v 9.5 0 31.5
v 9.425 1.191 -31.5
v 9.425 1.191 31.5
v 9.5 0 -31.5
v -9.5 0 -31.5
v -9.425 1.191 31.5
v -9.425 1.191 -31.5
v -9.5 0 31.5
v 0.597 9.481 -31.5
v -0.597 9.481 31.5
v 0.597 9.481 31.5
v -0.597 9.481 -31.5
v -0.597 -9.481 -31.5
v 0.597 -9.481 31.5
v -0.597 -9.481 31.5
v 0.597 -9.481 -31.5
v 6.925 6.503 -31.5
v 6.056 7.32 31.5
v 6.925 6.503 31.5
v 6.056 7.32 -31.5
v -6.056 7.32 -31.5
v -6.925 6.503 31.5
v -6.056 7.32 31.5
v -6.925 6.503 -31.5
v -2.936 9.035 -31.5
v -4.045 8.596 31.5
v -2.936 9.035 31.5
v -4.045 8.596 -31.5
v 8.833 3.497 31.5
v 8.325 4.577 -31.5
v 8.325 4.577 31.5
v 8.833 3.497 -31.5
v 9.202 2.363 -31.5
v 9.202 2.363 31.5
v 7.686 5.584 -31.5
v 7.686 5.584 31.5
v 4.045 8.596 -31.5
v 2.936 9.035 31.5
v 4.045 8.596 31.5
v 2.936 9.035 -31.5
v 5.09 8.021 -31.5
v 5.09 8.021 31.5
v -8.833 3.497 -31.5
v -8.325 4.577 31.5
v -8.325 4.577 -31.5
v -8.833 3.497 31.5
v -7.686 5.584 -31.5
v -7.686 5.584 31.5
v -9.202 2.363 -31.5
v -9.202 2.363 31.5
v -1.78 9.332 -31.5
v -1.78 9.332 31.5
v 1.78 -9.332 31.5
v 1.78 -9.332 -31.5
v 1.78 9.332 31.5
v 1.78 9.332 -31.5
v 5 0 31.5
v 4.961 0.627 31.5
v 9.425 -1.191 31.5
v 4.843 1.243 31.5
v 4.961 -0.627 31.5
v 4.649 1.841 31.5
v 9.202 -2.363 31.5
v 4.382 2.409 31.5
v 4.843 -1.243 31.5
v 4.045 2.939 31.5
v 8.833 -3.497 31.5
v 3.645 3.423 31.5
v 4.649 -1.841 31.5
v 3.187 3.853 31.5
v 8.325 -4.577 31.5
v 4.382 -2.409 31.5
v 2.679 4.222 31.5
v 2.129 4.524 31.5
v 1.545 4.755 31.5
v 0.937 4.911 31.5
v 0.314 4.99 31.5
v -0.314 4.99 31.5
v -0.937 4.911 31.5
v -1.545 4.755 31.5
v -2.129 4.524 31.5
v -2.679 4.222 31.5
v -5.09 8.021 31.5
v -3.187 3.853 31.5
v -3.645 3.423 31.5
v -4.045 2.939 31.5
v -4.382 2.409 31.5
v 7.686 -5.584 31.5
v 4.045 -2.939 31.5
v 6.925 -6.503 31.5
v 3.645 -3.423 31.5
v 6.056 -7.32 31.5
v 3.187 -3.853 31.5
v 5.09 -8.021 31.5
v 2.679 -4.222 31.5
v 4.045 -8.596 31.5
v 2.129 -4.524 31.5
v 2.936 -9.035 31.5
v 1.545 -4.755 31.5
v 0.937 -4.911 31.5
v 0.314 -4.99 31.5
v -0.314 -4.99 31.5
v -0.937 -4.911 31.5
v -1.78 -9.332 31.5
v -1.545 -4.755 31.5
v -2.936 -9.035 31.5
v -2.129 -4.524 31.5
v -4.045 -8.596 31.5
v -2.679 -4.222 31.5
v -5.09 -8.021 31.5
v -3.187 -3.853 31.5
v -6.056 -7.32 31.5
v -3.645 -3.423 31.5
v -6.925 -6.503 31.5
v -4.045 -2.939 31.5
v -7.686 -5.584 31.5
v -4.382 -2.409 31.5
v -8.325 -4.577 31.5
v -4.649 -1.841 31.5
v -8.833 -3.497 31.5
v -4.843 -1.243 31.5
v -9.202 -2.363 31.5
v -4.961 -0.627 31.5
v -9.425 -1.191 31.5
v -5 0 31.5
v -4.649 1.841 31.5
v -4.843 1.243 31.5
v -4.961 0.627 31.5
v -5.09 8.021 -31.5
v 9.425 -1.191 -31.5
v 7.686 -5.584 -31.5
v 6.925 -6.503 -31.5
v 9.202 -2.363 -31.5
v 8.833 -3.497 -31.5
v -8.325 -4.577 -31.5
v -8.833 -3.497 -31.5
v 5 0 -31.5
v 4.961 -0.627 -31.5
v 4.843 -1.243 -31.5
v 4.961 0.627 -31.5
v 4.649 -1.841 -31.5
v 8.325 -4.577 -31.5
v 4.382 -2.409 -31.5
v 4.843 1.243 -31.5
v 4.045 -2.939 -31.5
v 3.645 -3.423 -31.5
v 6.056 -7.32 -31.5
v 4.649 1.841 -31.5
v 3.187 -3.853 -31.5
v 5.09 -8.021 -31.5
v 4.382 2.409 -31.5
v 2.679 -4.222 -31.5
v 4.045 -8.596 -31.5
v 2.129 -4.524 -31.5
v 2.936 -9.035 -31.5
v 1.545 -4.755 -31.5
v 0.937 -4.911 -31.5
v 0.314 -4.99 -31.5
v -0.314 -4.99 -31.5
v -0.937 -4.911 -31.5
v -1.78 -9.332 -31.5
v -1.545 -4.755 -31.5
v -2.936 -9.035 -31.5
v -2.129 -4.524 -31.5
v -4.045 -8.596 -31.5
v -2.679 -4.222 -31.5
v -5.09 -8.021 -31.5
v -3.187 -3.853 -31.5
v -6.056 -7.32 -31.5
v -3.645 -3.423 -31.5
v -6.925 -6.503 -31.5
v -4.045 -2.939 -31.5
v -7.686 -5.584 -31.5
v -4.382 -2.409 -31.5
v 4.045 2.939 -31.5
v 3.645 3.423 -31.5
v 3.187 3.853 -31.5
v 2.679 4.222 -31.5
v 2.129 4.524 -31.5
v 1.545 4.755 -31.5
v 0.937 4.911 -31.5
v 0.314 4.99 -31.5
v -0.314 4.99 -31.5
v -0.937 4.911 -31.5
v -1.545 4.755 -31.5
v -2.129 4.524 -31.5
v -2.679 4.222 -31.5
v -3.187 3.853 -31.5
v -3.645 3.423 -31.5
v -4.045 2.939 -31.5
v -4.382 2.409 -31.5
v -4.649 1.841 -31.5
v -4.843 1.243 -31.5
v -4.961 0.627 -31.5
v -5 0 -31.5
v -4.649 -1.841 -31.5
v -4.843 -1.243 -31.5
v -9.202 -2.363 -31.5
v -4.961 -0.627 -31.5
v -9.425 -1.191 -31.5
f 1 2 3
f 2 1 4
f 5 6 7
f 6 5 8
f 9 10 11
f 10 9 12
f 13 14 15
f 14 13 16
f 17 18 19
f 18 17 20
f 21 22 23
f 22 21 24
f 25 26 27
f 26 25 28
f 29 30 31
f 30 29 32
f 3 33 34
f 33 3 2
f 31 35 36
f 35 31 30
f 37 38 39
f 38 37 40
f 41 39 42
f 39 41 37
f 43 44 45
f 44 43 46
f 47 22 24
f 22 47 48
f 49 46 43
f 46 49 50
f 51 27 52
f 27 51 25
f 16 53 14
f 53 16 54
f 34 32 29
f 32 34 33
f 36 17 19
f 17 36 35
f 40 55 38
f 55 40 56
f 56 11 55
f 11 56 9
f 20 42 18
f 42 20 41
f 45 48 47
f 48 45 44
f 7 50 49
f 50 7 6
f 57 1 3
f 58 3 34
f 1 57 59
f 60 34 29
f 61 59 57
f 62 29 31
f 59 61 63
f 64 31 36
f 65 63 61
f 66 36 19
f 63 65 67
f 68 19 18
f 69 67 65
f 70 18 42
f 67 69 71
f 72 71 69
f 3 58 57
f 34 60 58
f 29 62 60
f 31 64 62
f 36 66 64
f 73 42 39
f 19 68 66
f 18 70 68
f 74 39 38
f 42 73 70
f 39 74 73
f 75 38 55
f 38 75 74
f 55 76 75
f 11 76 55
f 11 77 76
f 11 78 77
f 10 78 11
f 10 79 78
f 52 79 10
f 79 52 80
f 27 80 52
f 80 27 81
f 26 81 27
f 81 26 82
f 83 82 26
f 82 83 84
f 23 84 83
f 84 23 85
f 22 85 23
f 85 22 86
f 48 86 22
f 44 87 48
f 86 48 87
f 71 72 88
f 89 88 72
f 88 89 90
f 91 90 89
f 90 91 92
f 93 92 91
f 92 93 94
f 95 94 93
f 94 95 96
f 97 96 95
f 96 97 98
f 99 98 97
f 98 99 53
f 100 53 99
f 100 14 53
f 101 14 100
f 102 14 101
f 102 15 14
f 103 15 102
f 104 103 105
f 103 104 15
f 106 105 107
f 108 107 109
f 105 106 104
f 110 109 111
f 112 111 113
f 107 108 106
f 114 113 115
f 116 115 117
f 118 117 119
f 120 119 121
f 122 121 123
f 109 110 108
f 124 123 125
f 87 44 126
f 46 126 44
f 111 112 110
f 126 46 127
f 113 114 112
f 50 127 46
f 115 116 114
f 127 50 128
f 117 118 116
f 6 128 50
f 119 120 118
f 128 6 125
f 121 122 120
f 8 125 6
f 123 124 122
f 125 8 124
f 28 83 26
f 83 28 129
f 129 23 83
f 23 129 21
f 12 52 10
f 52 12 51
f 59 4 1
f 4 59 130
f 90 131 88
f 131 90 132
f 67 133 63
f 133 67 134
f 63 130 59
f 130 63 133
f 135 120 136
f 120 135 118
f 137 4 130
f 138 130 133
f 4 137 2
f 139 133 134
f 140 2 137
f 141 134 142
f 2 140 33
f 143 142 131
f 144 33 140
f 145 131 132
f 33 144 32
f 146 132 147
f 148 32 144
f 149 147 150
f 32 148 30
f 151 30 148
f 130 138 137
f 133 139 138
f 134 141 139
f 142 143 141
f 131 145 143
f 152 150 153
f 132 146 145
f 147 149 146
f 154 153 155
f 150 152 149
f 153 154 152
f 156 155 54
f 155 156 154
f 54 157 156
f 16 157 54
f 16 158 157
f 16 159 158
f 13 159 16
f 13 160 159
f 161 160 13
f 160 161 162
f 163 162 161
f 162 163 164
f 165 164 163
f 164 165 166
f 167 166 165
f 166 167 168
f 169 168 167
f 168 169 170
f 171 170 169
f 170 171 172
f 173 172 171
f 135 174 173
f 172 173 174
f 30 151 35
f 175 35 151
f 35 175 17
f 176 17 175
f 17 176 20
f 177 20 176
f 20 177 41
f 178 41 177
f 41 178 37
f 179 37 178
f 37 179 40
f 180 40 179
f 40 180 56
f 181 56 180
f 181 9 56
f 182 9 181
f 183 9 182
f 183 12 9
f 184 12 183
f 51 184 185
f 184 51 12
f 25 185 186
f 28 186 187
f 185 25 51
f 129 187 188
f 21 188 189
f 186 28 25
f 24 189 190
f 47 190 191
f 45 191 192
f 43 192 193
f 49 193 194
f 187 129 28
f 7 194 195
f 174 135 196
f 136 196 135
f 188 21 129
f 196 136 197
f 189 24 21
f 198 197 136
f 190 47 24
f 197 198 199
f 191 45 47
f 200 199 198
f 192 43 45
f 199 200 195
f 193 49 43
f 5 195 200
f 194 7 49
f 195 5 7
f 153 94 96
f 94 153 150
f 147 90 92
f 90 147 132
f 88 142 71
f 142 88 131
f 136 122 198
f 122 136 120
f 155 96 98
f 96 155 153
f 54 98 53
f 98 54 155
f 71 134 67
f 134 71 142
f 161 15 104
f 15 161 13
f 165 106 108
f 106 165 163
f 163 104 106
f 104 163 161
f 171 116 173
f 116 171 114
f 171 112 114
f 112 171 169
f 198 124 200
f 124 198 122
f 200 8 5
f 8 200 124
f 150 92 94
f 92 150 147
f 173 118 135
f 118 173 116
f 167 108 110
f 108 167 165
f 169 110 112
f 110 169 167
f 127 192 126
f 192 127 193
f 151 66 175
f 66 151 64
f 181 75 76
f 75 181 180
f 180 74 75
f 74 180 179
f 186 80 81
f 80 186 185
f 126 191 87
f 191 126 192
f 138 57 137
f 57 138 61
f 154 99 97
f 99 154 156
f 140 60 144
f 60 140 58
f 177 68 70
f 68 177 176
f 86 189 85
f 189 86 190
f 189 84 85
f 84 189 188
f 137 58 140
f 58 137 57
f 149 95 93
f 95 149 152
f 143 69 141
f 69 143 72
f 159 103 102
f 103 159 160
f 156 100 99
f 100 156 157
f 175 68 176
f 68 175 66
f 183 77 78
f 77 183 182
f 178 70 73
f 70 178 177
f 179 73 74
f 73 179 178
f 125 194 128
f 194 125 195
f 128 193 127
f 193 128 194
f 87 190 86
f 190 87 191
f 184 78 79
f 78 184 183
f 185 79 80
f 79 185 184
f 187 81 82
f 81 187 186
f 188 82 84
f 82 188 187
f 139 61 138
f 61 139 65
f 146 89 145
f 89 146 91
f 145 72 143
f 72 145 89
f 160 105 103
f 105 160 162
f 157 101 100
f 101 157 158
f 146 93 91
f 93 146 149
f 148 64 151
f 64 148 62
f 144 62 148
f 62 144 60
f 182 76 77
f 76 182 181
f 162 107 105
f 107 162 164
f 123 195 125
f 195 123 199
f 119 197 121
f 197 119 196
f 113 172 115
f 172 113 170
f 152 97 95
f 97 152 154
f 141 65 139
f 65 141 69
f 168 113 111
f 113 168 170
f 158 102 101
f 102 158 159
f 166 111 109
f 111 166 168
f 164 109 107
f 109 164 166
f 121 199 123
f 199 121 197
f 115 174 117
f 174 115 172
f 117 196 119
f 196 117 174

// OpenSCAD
$fn = 50;


difference() {
	union() {
		translate(v = [0, 0, -31.5000000000]) {
			cylinder(h = 63, r = 9.5000000000);
		}
	}
	union() {
		translate(v = [0, 0, -100.0000000000]) {
			cylinder(h = 200, r = 5.0000000000);
		}
	}
}
